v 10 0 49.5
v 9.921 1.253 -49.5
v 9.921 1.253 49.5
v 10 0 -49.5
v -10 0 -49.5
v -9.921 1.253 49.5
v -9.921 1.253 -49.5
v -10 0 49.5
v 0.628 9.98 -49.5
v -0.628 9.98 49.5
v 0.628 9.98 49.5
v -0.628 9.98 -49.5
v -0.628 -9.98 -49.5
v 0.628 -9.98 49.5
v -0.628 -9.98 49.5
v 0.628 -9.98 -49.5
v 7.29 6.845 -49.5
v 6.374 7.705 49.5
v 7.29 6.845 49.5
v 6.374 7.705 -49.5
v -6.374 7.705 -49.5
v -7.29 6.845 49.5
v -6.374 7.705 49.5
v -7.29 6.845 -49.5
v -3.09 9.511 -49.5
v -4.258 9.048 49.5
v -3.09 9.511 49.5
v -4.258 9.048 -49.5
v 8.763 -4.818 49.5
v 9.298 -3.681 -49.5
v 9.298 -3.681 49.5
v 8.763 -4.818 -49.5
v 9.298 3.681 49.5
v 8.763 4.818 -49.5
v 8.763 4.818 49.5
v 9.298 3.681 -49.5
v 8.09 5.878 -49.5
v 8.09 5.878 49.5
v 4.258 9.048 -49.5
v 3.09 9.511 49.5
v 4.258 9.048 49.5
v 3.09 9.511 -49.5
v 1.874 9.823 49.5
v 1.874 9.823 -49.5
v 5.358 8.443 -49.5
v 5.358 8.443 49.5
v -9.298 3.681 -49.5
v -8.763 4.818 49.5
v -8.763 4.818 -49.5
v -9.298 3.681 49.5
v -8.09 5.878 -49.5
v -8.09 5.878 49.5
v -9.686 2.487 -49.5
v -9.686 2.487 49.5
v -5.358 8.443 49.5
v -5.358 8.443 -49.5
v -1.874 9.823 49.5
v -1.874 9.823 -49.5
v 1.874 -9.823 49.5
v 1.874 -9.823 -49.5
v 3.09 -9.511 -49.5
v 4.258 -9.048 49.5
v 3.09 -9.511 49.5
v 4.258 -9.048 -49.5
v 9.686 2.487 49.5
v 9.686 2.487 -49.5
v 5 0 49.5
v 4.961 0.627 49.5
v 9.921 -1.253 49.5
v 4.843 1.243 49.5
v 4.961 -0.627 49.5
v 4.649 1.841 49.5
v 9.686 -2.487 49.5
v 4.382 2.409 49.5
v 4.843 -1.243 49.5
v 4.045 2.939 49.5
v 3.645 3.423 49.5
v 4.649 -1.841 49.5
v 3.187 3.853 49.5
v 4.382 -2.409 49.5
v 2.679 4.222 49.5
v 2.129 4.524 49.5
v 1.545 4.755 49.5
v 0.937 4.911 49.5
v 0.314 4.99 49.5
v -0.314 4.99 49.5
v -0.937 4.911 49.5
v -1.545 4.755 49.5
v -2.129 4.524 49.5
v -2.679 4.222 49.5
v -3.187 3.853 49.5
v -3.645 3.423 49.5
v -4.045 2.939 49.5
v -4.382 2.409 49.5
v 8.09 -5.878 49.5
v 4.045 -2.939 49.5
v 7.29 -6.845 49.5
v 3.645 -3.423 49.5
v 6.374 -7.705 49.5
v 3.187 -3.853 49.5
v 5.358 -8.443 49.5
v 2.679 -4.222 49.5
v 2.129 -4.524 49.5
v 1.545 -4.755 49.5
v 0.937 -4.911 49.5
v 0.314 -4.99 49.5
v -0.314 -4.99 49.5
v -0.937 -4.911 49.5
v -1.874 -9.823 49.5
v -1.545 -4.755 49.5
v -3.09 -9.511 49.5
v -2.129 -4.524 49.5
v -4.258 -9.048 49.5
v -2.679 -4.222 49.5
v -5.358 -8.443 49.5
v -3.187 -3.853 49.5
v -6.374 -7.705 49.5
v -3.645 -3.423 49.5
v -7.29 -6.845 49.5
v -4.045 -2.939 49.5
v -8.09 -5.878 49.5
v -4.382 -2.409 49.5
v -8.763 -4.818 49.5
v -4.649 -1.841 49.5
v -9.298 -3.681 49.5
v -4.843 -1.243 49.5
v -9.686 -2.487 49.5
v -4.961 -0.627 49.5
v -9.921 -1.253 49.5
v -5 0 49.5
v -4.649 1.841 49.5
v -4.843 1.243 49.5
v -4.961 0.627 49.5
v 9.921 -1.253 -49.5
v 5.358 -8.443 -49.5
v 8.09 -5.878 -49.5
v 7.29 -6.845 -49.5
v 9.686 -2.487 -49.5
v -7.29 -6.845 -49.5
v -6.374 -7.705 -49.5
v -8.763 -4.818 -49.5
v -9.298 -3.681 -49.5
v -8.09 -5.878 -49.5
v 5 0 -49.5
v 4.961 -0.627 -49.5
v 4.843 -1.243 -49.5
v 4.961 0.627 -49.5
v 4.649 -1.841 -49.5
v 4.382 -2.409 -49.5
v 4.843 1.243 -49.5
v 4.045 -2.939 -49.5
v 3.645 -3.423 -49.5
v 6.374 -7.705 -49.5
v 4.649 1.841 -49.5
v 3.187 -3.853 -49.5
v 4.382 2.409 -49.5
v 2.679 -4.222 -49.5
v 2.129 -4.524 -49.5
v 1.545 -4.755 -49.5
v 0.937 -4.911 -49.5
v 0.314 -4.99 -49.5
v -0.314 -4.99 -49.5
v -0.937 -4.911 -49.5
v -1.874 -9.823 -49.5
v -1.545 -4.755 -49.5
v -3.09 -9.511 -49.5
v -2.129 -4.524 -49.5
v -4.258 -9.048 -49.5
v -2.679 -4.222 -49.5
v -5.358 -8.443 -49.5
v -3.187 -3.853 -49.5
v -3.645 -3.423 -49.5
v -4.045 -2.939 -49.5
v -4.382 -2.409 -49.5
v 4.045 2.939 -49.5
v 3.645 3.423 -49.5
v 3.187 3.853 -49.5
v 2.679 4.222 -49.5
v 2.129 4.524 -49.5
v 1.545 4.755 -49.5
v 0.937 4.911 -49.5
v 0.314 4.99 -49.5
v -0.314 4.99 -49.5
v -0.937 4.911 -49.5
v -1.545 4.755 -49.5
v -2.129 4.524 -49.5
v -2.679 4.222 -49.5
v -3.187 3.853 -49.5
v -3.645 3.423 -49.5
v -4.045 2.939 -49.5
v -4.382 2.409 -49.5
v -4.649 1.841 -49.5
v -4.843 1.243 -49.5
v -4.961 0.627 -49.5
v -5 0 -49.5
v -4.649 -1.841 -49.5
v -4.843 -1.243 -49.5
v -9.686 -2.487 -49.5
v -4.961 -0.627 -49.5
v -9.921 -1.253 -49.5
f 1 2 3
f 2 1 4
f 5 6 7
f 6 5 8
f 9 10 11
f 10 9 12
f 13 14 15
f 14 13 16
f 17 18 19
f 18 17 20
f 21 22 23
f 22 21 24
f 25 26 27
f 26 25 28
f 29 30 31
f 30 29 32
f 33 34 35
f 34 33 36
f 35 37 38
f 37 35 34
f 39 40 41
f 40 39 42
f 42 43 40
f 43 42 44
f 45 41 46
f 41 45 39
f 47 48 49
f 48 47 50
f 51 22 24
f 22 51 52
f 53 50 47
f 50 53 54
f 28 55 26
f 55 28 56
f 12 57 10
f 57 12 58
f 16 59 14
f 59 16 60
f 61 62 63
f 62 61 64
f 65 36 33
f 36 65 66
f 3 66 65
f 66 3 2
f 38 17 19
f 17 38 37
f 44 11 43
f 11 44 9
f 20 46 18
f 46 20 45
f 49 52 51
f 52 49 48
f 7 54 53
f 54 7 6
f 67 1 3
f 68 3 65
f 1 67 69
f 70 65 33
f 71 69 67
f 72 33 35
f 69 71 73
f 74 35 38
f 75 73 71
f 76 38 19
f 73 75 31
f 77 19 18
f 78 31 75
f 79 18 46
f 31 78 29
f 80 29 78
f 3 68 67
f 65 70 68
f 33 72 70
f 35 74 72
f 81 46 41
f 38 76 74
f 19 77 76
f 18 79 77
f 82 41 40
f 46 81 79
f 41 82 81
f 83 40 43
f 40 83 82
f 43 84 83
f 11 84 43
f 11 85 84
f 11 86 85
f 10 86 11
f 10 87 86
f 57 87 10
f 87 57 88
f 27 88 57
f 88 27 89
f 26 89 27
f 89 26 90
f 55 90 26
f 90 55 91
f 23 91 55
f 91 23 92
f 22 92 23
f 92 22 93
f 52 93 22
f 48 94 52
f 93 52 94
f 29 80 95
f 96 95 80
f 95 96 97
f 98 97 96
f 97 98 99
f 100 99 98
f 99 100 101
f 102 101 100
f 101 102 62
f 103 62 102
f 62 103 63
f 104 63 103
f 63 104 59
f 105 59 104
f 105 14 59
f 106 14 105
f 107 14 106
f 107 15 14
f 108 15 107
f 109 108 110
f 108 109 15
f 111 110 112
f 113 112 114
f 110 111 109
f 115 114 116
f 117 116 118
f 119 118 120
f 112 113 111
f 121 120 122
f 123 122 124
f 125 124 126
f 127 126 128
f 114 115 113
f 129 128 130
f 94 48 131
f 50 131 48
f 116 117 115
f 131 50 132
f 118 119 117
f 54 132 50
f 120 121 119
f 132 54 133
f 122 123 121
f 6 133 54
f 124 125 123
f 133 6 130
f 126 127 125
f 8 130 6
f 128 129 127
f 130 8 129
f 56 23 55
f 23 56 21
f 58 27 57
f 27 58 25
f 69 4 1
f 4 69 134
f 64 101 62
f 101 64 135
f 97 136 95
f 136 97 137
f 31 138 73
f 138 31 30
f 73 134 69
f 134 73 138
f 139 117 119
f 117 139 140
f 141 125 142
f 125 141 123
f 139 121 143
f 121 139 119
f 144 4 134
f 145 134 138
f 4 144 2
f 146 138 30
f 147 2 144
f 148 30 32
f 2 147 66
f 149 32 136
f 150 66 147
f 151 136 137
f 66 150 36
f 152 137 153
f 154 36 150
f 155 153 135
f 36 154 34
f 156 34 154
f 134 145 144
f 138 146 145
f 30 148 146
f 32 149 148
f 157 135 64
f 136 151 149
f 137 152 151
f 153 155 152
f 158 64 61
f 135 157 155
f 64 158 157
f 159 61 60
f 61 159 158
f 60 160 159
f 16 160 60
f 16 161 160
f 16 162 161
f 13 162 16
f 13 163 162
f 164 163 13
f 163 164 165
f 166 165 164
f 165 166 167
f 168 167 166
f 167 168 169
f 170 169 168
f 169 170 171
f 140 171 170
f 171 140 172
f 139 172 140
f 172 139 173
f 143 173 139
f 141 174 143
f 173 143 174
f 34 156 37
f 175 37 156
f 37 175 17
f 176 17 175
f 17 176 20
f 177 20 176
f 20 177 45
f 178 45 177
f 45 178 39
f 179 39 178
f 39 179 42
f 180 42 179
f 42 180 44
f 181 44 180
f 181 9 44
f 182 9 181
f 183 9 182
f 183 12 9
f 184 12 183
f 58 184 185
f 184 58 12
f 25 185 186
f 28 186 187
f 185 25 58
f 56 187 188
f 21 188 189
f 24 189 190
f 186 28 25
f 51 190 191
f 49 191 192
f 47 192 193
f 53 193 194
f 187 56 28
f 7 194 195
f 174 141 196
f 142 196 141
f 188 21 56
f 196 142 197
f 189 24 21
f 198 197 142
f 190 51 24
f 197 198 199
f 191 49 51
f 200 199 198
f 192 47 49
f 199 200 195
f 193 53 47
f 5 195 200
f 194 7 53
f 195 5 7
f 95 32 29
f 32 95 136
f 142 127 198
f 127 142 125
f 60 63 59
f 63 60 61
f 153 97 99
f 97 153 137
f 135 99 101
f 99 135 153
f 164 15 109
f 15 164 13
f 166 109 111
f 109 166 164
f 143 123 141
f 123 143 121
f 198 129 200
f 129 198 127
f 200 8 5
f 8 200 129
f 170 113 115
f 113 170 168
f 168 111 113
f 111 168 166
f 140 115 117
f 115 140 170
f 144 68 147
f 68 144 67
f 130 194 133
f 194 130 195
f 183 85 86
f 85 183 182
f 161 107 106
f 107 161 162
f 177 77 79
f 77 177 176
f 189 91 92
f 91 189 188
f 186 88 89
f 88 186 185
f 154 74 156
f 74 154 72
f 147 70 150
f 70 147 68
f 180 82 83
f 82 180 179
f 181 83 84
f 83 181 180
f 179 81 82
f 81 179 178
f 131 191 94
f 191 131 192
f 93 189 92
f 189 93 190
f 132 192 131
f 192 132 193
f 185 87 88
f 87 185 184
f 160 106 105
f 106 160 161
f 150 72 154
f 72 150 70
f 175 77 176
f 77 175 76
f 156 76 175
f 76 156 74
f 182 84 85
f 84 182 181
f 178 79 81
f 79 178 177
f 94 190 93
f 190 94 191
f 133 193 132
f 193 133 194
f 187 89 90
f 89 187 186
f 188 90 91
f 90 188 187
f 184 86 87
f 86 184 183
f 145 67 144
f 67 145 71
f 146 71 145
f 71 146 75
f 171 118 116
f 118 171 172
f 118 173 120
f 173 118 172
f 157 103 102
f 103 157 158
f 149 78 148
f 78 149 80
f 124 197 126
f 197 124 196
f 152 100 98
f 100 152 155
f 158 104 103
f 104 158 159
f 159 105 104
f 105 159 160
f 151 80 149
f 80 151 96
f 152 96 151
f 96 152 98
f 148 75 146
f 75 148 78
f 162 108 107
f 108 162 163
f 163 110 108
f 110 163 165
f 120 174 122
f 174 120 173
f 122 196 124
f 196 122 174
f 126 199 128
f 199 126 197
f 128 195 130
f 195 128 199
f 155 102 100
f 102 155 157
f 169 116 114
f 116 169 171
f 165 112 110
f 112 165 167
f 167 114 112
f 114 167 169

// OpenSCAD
$fn = 50;


difference() {
	union() {
		translate(v = [0, 0, -49.5000000000]) {
			cylinder(h = 99, r = 10.0000000000);
		}
	}
	union() {
		translate(v = [0, 0, -100.0000000000]) {
			cylinder(h = 200, r = 5.0000000000);
		}
	}
}
